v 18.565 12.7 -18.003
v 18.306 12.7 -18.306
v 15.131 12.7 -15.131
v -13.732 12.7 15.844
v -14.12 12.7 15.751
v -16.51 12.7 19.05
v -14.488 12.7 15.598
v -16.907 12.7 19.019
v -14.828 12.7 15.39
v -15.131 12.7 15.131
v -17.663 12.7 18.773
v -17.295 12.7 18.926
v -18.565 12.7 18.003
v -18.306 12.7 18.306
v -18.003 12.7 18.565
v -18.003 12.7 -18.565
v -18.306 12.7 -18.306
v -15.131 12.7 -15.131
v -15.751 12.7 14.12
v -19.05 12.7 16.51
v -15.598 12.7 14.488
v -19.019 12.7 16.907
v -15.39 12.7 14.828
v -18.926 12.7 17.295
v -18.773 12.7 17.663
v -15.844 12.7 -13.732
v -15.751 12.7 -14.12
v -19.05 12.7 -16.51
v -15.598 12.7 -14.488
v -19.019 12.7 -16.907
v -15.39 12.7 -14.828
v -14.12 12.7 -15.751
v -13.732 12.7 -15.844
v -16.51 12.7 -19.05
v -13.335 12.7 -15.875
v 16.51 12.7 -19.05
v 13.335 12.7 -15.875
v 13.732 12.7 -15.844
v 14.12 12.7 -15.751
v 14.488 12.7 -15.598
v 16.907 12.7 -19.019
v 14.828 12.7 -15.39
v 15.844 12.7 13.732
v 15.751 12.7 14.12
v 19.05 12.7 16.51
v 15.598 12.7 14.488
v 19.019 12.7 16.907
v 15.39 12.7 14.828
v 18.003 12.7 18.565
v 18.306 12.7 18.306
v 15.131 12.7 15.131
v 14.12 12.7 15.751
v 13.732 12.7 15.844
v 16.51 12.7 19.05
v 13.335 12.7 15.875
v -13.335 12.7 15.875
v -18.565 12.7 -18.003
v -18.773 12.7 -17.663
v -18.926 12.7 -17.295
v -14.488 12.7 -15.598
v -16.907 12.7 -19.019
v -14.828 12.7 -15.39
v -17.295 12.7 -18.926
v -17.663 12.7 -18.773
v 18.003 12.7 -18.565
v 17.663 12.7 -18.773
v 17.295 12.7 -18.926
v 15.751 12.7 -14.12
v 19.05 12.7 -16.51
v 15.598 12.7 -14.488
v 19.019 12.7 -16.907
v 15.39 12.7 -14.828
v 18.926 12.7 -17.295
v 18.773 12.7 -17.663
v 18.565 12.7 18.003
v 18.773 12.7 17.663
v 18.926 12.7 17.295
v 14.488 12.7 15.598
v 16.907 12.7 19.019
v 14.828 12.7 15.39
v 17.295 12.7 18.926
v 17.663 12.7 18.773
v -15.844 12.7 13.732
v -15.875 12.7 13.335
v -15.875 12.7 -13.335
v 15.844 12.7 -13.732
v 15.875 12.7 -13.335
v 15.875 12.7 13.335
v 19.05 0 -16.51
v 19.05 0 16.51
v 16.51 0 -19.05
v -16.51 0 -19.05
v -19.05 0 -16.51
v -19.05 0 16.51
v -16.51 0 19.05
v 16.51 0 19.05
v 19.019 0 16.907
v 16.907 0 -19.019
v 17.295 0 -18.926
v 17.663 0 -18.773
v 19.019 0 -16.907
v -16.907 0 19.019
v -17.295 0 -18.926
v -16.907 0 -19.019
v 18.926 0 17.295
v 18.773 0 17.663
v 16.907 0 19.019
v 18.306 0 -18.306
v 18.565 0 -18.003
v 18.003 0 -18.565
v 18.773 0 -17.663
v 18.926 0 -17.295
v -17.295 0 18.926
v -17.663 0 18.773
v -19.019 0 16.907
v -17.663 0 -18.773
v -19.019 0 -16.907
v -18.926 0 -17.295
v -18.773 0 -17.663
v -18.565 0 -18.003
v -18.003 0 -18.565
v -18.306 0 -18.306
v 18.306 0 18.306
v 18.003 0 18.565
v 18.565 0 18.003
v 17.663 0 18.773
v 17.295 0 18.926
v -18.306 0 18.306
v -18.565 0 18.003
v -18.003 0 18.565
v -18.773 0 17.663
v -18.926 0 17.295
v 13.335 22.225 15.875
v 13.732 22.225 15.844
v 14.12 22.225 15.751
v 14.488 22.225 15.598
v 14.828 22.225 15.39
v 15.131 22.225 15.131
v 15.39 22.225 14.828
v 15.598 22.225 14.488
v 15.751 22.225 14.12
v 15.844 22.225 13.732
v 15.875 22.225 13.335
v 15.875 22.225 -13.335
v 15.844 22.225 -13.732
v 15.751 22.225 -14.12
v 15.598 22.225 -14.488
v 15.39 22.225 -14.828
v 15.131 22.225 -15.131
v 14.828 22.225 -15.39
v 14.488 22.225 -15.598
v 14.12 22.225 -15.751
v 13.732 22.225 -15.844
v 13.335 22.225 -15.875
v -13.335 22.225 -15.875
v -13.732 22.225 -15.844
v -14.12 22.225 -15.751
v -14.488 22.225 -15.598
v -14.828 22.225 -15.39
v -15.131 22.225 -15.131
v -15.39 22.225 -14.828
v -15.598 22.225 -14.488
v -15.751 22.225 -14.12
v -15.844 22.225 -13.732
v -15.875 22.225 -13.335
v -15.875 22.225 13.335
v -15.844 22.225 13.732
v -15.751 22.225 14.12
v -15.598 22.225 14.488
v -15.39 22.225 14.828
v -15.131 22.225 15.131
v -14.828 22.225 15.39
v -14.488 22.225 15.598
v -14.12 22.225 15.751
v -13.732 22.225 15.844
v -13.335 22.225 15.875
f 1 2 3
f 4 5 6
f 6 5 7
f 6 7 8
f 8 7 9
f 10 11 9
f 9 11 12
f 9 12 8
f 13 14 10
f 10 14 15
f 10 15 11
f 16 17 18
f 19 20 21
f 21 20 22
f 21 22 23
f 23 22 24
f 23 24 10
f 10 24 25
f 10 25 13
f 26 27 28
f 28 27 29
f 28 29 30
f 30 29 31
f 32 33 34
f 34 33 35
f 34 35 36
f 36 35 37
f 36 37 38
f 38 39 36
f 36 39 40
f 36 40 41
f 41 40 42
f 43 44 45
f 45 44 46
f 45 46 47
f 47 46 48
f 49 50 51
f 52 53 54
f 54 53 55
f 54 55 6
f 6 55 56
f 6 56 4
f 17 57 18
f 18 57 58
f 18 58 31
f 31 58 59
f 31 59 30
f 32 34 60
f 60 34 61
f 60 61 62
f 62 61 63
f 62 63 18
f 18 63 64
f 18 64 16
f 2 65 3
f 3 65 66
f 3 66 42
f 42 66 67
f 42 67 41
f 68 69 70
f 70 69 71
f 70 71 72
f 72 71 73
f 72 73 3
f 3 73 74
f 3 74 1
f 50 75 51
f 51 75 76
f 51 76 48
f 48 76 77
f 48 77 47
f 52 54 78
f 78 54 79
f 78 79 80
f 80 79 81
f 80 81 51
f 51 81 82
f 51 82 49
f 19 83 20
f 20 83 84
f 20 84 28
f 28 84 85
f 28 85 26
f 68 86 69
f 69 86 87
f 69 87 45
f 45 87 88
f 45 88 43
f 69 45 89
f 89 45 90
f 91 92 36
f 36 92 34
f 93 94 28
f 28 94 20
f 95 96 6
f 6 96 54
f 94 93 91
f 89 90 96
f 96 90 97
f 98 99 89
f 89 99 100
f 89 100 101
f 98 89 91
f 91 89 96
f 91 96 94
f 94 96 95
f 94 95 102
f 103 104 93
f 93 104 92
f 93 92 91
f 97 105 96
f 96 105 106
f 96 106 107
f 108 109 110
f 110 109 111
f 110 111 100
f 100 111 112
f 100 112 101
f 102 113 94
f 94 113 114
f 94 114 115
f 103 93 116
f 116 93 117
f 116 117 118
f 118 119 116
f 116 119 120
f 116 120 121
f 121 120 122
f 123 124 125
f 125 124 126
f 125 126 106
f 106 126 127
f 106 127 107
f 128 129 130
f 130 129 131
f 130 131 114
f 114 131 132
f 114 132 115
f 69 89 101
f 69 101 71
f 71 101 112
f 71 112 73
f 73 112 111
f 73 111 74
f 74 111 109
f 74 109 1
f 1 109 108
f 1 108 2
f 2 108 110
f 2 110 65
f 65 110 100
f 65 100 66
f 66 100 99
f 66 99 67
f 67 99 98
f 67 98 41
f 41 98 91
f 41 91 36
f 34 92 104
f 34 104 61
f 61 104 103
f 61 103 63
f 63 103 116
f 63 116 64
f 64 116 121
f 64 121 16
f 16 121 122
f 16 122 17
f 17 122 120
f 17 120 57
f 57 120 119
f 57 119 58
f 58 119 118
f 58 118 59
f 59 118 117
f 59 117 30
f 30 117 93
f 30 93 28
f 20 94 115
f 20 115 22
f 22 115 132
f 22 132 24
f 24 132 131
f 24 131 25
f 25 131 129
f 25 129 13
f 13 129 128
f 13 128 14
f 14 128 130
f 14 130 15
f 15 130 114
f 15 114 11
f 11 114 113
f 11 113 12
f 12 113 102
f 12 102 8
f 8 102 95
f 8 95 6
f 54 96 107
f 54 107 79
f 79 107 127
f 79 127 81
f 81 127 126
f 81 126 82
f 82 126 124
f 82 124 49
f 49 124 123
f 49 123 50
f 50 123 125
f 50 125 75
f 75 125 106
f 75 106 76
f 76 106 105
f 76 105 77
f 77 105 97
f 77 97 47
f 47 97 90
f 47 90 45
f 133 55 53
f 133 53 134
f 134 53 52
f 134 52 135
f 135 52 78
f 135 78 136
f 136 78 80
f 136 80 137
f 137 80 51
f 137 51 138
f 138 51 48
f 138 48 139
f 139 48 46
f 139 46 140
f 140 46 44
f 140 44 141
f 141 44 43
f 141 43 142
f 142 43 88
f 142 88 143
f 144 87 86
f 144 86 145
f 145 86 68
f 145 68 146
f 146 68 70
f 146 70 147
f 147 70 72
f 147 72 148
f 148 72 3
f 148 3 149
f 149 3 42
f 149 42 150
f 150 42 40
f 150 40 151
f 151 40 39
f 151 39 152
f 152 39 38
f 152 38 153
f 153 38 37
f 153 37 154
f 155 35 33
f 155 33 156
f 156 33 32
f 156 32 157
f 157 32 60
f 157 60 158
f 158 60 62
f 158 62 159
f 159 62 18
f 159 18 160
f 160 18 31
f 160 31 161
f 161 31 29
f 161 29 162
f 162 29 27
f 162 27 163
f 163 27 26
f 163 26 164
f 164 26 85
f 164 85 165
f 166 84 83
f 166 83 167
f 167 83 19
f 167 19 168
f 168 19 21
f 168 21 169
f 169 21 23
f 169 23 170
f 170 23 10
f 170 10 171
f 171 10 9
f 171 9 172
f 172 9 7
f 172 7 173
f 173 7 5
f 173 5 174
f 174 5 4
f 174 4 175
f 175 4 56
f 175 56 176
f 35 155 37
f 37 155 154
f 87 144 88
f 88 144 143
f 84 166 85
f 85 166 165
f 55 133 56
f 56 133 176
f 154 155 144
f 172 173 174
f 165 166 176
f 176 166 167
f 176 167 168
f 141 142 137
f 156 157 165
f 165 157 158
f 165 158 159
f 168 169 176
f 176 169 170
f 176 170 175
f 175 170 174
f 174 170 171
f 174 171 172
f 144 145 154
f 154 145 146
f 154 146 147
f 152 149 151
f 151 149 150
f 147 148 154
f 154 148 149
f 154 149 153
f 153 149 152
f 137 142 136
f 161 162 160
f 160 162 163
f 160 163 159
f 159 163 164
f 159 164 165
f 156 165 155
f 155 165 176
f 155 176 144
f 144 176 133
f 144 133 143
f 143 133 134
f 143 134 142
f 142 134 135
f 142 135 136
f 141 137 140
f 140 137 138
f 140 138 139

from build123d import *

# Parameters (mm, degrees)
SKETCH1_W           = 38.1
SKETCH1_H           = 38.1
BOSS_EXTRUDE1_DEPTH = 12.7
FILLET1_R           = 2.54
SHELL1_T            = -3.175
FILLET2_R           = 2.54
BOSS_EXTRUDE2_DEPTH = 19.05


with BuildPart() as part:
    # Sketch1 → Boss-Extrude1 (new body)
    with BuildSketch(Plane(origin=(0, 0, 0), x_dir=(1, 0, 0), z_dir=(0, 1, 0))):
        Rectangle(SKETCH1_W, SKETCH1_H)
    extrude(amount=BOSS_EXTRUDE1_DEPTH)

    # Fillet1
    fillet1_edges = [part.edges().sort_by_distance(p)[0] for p in [
        (19.05, 6.35, 19.05),
        (-19.05, 6.35, 19.05),
        (-19.05, 6.35, -19.05),
        (19.05, 6.35, -19.05),
    ]]
    fillet(fillet1_edges, radius=FILLET1_R)

    # Shell1
    shell1_openings = [part.faces().sort_by_distance(p)[0] for p in [
        (0, 12.7, 0),
    ]]
    offset(amount=SHELL1_T, openings=shell1_openings, kind=Kind.INTERSECTION)

    # Fillet2
    fillet2_edges = [part.edges().sort_by_distance(p)[0] for p in [
        (15.875, 7.9375, -15.875),
        (-15.875, 7.9375, -15.875),
        (-15.875, 7.9375, 15.875),
        (15.875, 7.9375, 15.875),
    ]]
    fillet(fillet2_edges, radius=FILLET2_R)

    # Sketch2 → Boss-Extrude2 (add)
    with BuildSketch(Plane(origin=(0, 3.175, 0), x_dir=(1, 0, 0), z_dir=(0, 1, 0))):
        with BuildLine():
            Line((15.875, -13.335), (15.875, 13.335))
            ThreePointArc((15.875, 13.335), (15.131051224, 15.131051224), (13.335, 15.875))
            Line((13.335, 15.875), (-13.335, 15.875))
            ThreePointArc((-13.335, 15.875), (-15.131051224, 15.131051224), (-15.875, 13.335))
            Line((-15.875, 13.335), (-15.875, -13.335))
            ThreePointArc((-15.875, -13.335), (-15.131051224, -15.131051224), (-13.335, -15.875))
            Line((-13.335, -15.875), (13.335, -15.875))
            ThreePointArc((13.335, -15.875), (15.131051224, -15.131051224), (15.875, -13.335))
        make_face()
    extrude(amount=BOSS_EXTRUDE2_DEPTH)


solid = part.part
